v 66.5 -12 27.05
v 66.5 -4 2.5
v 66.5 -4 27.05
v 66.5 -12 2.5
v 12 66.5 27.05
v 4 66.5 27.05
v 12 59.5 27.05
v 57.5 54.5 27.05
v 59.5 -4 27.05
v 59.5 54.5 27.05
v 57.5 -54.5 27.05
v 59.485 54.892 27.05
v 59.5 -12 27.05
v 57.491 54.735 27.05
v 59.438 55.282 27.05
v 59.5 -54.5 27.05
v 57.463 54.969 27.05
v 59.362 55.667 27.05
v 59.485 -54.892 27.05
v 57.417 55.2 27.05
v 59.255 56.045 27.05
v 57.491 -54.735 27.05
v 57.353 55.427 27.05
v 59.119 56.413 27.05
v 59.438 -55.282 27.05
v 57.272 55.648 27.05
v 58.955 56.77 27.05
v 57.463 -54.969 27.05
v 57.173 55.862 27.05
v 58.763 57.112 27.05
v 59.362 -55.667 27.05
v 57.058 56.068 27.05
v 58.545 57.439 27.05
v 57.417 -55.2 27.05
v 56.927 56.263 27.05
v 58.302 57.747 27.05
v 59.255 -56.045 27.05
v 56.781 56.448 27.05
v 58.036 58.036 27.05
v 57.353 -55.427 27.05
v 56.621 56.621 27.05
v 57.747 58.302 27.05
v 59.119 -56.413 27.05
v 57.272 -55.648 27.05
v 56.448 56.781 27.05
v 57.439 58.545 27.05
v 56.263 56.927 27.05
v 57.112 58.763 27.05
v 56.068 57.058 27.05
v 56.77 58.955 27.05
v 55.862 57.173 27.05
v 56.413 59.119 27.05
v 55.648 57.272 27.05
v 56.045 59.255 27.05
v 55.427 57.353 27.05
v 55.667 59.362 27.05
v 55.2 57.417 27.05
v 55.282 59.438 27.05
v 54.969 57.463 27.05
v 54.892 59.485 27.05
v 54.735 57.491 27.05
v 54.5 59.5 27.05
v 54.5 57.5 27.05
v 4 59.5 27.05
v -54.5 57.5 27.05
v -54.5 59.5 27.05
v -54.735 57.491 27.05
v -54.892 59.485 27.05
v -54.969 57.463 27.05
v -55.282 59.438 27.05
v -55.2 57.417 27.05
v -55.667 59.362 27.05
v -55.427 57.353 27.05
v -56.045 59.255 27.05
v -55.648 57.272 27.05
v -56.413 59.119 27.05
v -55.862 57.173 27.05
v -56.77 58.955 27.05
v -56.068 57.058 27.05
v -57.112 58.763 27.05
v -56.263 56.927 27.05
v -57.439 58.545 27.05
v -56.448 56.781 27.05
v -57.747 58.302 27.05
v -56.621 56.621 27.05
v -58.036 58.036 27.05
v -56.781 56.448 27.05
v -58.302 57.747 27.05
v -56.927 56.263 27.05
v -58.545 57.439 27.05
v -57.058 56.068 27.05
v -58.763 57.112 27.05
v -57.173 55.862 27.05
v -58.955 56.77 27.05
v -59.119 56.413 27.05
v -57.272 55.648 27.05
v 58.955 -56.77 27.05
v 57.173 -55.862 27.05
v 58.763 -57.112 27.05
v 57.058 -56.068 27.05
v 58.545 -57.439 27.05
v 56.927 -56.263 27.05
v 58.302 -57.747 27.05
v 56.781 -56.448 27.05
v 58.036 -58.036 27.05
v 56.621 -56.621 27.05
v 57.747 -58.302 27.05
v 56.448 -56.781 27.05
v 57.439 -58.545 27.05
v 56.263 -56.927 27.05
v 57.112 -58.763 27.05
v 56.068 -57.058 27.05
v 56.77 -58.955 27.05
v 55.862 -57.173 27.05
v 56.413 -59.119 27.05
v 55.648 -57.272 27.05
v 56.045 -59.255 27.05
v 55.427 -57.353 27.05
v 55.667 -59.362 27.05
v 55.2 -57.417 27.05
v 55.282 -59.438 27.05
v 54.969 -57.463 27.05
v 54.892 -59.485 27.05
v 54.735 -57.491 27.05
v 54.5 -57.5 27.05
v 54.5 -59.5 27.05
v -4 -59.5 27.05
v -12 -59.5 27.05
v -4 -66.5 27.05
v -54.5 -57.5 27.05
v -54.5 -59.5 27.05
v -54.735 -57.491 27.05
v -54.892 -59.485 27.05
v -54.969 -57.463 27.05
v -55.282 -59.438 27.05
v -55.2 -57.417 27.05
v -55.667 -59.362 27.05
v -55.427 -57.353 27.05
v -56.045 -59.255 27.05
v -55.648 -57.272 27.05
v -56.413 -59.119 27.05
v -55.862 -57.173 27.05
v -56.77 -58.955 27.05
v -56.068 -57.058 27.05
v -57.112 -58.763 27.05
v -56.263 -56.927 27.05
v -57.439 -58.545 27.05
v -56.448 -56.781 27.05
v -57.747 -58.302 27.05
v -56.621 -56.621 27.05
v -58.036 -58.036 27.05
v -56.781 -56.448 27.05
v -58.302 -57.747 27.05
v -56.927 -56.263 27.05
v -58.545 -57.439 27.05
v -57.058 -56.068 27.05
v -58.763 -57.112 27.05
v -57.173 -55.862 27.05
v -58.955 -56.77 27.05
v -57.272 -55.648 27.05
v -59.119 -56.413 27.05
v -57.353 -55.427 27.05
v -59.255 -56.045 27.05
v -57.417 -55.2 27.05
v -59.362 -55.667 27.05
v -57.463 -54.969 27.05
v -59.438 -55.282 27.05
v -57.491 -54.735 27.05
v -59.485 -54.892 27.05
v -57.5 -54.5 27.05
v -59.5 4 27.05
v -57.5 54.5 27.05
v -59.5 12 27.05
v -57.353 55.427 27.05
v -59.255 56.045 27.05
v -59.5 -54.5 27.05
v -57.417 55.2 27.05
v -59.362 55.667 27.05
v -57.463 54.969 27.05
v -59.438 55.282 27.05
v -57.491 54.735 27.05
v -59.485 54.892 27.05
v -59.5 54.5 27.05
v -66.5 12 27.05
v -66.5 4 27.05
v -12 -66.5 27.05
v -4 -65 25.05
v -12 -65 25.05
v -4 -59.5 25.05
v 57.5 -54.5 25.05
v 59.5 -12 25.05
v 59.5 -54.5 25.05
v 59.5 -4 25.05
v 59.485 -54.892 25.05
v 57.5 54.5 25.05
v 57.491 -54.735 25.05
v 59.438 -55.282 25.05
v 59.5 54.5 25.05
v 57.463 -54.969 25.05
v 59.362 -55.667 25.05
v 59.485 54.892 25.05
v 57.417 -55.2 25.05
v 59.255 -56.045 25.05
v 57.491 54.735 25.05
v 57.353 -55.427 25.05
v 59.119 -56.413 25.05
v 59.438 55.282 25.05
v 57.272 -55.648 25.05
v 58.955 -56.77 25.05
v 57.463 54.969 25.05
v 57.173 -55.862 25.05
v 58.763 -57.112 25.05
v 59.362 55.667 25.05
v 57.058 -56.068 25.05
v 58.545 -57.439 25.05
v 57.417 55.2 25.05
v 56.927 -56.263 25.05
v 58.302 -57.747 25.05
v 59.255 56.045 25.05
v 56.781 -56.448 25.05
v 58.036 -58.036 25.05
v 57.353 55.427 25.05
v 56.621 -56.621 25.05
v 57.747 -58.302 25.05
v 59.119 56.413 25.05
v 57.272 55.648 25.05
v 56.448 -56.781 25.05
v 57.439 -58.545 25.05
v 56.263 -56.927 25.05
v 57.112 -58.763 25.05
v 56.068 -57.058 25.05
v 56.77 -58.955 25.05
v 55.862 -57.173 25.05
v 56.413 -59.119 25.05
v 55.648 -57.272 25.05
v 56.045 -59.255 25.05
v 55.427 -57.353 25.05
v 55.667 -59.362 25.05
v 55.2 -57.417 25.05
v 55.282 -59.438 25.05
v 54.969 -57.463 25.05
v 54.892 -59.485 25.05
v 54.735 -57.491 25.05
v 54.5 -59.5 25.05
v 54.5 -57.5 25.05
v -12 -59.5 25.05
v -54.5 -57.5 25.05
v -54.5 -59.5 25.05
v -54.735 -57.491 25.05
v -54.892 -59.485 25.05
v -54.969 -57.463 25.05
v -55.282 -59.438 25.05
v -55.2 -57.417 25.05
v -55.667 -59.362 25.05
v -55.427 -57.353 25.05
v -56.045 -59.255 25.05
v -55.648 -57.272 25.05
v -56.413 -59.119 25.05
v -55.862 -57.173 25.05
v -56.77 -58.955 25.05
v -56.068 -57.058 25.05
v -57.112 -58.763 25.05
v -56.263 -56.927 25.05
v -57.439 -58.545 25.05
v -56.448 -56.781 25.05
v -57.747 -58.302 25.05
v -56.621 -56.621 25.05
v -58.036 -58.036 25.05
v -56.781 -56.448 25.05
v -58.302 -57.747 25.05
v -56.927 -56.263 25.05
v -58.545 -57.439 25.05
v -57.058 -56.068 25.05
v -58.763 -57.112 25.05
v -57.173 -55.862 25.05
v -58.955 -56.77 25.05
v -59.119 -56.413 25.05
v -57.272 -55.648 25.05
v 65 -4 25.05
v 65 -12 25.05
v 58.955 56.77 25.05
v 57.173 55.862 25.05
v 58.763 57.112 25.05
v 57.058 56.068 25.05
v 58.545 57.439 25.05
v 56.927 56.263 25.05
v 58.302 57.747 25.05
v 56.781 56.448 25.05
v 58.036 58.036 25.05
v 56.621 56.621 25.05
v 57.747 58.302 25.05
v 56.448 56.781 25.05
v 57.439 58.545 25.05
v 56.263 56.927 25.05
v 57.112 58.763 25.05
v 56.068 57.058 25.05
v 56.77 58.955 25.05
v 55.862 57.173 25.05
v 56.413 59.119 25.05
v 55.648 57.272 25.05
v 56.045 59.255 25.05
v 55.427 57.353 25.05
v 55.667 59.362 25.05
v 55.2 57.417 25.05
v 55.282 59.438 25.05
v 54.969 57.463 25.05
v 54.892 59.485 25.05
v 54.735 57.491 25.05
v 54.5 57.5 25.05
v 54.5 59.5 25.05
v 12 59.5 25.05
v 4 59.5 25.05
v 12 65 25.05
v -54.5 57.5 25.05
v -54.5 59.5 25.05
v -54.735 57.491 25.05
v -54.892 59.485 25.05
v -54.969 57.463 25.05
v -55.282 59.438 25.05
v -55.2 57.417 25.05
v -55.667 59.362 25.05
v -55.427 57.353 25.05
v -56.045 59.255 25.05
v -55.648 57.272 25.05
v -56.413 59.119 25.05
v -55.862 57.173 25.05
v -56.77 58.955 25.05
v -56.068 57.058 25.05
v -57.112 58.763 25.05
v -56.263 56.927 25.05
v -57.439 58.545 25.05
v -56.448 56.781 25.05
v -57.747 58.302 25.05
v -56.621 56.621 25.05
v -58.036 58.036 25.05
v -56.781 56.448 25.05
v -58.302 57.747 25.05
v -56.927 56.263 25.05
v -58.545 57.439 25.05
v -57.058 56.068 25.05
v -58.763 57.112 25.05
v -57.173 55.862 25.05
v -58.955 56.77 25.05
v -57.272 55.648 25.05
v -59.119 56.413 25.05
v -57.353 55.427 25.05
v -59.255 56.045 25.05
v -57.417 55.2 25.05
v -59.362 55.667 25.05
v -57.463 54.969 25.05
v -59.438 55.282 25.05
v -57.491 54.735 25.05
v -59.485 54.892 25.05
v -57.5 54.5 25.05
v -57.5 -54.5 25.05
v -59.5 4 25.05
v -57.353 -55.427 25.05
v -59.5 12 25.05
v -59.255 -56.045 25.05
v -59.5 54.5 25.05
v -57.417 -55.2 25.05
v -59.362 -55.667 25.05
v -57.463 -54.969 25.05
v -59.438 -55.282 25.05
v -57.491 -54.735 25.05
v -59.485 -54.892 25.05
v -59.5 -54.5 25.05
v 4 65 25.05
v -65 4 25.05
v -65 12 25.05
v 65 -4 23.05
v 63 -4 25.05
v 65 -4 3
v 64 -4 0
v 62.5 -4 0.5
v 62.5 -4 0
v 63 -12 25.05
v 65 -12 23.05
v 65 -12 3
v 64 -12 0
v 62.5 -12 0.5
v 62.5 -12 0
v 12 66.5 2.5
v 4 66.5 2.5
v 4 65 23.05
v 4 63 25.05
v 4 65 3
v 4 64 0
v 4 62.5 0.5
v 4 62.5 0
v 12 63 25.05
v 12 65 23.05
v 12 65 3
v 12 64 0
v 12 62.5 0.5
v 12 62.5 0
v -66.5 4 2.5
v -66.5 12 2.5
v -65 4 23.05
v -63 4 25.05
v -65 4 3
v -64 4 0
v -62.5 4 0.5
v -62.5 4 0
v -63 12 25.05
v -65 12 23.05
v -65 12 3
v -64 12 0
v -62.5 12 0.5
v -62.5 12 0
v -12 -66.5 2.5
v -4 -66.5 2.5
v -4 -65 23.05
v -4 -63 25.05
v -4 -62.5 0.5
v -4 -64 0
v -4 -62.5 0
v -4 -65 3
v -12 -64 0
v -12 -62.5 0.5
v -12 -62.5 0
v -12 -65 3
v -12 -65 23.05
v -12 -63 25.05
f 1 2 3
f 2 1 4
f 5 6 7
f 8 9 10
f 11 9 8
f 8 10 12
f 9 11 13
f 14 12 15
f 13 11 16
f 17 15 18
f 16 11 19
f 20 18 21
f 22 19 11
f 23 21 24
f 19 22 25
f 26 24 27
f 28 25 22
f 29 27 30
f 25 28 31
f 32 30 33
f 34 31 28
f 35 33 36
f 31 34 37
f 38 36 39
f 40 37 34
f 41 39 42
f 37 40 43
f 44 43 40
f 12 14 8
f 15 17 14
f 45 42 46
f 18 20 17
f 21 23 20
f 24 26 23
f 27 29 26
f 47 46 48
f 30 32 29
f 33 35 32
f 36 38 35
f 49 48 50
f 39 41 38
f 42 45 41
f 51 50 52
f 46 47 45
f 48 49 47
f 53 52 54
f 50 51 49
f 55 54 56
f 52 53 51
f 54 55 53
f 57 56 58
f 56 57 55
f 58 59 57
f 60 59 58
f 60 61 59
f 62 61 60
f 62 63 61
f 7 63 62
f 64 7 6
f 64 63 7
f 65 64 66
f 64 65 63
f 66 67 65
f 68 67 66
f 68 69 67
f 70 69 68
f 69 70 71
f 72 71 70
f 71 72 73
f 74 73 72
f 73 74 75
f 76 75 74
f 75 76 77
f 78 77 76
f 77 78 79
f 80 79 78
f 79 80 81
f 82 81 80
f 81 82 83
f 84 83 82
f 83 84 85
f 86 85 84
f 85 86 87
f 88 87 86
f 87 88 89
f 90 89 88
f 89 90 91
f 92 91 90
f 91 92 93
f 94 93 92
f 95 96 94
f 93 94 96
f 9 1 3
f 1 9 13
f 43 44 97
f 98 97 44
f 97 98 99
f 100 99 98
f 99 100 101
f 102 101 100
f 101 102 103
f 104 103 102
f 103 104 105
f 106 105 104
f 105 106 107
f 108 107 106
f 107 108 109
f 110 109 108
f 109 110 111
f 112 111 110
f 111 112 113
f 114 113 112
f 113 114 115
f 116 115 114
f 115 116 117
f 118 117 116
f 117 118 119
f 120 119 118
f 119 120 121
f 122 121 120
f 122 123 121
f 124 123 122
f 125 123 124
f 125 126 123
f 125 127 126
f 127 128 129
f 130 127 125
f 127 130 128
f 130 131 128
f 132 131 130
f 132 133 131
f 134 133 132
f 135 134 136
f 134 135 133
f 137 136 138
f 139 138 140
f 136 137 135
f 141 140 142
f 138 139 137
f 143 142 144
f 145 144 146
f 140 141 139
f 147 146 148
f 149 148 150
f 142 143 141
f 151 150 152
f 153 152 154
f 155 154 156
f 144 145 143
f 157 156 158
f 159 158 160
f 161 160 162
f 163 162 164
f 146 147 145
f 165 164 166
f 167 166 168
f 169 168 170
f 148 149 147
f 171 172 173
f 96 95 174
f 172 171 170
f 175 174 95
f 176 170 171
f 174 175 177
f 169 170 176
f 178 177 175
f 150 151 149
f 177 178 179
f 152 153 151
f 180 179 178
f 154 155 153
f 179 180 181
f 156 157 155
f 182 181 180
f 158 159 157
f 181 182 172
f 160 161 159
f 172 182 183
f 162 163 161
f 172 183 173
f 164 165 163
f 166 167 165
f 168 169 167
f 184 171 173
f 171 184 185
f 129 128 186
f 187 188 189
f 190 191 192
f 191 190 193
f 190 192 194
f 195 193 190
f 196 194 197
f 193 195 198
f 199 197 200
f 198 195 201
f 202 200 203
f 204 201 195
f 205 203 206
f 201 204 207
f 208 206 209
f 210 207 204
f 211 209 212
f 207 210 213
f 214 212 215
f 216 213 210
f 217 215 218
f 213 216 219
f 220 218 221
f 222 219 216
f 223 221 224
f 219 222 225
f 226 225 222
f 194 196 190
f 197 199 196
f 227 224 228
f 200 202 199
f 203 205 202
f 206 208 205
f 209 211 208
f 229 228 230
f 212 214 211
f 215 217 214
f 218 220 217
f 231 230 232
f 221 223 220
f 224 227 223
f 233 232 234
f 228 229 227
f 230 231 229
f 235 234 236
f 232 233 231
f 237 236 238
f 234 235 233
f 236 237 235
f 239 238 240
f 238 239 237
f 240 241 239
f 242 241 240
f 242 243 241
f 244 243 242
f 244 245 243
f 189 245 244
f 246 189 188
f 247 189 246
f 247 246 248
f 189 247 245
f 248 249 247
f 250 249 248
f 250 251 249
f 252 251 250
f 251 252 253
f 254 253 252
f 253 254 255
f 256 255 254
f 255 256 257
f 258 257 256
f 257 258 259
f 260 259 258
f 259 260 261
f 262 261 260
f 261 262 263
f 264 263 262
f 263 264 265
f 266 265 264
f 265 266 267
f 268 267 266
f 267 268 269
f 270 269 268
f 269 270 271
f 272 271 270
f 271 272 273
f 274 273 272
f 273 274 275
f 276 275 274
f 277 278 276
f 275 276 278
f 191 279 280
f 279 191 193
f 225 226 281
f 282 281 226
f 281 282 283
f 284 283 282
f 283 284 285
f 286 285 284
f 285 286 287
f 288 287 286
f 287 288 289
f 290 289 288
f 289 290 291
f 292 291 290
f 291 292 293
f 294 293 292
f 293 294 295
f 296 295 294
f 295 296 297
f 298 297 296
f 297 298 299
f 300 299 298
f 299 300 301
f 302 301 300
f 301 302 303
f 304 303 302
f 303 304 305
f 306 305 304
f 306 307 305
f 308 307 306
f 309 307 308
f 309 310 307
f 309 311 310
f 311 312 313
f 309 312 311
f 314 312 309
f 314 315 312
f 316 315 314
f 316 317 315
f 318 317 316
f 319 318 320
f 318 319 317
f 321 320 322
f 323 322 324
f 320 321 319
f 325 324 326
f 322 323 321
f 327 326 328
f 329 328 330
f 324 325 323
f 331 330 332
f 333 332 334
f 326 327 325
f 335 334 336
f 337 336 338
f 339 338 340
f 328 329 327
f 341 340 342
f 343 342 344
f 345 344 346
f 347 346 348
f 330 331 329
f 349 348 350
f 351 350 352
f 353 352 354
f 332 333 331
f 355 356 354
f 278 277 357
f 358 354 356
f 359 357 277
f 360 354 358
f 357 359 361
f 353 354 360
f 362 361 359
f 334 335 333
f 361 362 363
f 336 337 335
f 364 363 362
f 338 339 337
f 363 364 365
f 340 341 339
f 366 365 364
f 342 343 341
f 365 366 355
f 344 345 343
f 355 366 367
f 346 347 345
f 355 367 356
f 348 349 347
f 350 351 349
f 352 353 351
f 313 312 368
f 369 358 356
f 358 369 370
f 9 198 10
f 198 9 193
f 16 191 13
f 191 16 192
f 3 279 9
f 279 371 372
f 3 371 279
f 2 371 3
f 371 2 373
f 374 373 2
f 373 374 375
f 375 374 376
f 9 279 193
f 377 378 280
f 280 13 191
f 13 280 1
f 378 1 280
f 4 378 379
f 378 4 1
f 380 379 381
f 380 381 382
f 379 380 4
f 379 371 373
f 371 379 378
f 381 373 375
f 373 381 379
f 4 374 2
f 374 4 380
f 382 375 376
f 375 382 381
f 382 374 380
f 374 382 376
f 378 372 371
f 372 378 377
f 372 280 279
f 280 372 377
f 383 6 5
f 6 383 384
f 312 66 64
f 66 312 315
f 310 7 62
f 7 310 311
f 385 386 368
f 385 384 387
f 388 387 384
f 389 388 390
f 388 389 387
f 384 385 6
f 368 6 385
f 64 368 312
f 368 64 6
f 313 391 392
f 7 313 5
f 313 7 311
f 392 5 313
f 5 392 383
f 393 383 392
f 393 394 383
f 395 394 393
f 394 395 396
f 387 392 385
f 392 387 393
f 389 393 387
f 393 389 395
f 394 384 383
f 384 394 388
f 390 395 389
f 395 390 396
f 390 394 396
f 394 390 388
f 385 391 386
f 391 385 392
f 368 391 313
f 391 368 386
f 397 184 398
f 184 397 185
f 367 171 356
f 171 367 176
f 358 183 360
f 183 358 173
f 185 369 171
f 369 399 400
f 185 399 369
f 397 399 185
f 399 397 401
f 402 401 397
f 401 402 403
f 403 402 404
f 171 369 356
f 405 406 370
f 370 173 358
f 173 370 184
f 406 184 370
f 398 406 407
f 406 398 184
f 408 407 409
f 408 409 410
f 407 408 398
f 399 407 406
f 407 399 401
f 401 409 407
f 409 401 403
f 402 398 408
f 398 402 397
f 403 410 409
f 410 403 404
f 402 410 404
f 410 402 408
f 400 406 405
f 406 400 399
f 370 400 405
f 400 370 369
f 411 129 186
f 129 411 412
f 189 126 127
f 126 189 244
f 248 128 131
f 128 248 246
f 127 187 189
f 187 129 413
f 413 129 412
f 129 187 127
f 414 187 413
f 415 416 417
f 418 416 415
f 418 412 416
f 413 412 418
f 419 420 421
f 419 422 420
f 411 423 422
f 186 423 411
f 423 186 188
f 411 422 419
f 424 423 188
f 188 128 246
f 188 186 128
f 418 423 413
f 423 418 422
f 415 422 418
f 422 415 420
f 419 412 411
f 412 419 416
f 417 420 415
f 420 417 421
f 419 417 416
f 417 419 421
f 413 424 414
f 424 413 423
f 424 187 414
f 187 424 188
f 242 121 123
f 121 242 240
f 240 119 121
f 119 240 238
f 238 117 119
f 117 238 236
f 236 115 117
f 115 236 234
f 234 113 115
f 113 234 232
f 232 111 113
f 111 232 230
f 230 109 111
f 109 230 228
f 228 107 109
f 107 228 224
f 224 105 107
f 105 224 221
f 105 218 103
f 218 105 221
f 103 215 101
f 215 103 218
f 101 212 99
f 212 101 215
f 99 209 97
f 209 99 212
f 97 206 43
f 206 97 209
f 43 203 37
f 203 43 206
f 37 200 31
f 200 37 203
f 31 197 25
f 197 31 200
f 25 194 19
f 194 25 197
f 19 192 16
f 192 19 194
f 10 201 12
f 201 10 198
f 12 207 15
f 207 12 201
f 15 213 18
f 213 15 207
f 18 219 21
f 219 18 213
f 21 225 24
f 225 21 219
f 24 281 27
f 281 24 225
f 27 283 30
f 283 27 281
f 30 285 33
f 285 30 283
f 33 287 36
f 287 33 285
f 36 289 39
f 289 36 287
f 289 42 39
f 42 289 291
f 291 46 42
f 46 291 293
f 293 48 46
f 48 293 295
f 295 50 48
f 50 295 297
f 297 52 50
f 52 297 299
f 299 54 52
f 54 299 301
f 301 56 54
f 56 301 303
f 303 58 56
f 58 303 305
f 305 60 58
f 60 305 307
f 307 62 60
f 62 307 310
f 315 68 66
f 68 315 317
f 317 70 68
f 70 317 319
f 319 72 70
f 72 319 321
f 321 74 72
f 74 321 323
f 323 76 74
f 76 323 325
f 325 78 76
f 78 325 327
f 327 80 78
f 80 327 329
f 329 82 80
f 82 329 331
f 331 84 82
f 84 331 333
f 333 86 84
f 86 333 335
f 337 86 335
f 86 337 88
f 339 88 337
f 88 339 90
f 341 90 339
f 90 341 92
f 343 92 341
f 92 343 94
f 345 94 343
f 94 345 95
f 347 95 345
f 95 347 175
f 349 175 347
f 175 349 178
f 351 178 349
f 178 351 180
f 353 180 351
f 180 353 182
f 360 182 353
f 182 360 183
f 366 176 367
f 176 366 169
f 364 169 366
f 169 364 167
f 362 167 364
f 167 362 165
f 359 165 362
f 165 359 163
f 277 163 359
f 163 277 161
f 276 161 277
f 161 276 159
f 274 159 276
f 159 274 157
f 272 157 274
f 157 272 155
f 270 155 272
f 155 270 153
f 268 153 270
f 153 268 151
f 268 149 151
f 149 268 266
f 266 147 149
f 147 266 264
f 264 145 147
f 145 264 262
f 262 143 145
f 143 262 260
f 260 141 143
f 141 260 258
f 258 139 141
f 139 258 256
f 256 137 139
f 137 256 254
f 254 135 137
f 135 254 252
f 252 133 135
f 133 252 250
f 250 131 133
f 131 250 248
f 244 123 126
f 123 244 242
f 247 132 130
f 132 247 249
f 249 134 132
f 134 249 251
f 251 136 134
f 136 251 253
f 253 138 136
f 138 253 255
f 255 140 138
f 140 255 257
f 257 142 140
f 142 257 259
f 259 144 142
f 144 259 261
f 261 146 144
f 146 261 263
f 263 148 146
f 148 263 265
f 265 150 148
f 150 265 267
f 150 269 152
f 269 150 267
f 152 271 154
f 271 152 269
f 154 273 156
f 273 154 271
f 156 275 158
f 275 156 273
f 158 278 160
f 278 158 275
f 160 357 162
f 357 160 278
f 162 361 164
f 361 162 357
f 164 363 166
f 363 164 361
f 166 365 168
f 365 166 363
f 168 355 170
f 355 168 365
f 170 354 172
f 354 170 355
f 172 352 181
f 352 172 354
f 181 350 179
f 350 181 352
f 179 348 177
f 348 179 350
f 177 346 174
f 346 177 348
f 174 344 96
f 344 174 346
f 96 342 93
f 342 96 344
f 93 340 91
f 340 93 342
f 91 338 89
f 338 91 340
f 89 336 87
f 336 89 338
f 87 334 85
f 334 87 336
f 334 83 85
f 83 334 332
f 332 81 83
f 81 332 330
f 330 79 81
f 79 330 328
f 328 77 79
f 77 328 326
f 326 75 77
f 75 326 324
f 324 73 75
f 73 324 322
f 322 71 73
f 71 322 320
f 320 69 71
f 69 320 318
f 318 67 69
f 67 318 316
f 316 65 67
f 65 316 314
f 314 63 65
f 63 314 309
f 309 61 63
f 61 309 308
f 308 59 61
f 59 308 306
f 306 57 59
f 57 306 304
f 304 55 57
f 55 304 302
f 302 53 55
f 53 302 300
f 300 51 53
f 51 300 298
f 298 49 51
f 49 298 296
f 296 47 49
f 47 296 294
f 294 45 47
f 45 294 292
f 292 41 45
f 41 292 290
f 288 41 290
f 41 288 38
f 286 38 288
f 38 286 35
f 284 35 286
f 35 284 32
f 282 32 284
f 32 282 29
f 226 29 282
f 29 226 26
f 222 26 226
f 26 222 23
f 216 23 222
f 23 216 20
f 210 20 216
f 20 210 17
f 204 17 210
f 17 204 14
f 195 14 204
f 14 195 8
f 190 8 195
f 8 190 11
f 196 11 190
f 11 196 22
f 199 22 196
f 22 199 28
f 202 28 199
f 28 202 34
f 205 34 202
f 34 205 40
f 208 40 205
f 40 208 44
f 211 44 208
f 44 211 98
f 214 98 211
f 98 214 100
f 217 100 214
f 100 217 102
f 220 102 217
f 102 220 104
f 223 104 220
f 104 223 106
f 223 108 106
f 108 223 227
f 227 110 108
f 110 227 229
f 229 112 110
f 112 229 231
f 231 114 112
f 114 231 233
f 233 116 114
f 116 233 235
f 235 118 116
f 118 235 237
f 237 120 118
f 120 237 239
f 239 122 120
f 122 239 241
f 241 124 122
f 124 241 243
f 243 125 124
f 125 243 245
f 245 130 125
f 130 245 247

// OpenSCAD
// file: fan-tub-adapter-params.scad
// Fan-Tub Adapter v2.0 — Shared Parameters
// Used by both base plate and retention clip designs.

// === Waffle Grid Measurements ===
square_size   = 63.7;    // mm — waffle square (channel edge to channel edge)
channel_w     = 9.4;     // mm — channel width between adjacent squares
waffle_h      = 4.6;     // mm — waffle square height above channel surface

// === Cutout ===
cutout        = 2 * square_size + channel_w;  // 136.8mm

// === Frame Plate ===
frame_t_inner = 5.0;     // mm — inner zone thickness (fan mount)
frame_t_outer = waffle_h; // mm — outer zone (flange + branches, flush with waffle tops)
corner_r      = 4;       // mm — waffle square corner radius

// === Flange ===
flange_w      = channel_w / 2;  // 4.7mm

// === Fan Geometry ===
fan_frame     = 119;     // mm — fan outer dimension (square)
fan_frame_t   = 24.7;    // mm — fan frame thickness (measured)
fan_opening   = 115;     // mm — center airflow diameter (matches fan inner circle)
fan_corner_r  = 5;       // mm — fan frame corner radius

// === Locating Rim ===
loc_rim_h     = 4.0;     // mm — height of rim above inner plate (was 1.5 in v1)
loc_rim_wall  = 2;       // mm — rim wall thickness
loc_clearance = 0.5;     // mm — clearance around fan frame (per side)

// === Y-Branch Geometry ===
branch_w      = 9.0;     // mm — branch width (9.4 channel - 0.4 clearance)
branch_len    = 25;      // mm — engagement length into channel from root

// === Clip Mechanism ===
// Ledge on rim exterior: chamfered underside for printability.
//   Bottom zone: 45° chamfer ramps from 0 to full depth over clip_ledge_depth height.
//   Top zone:    flat engagement face, clip_ledge_flat mm tall — hook catches here.
//   Total ledge height = clip_ledge_depth (chamfer) + clip_ledge_flat (flat).
clip_ledge_depth   = 3.0;  // mm — outward protrusion; also sets chamfer height (45°)
clip_ledge_flat    = 2.0;  // mm — flat engagement zone at ledge top (hook catches here)
clip_ledge_h       = clip_ledge_depth + clip_ledge_flat;  // 5.0mm total ledge height
clip_arm_w         = 8.0;  // mm — arm width
clip_arm_t         = 1.5;  // mm — arm thickness
clip_arm_len       = 22.05; // mm — arm length (preload-adjusted)
clip_hook_overhang = 2.5;  // mm — hook inward protrusion (snap deflection + engagement)
clip_hook_h        = 3.0;  // mm — hook height
clip_frame_t       = 2.0;  // mm — clip frame thickness
clip_tab_w         = 3.5;  // mm — outward bridge from frame edge to arm

// === Derived Values ===
frame_outer   = cutout + 2 * flange_w;        // 146.2mm
branch_root   = cutout / 2 + channel_w / 2;   // 73.1mm

loc_inner     = fan_frame + 2 * loc_clearance; // 120mm
loc_outer     = loc_inner + 2 * loc_rim_wall;  // 124mm

// Vertical stackup (Z from base plate bottom)
z_inner_top   = frame_t_inner;                 // 5.0
z_rim_top     = frame_t_inner + loc_rim_h;     // 9.0
z_ledge_bot   = z_rim_top - clip_ledge_h;      // 7.5 (ledge bottom, 1.5mm from rim top)
z_fan_top     = frame_t_inner + fan_frame_t;   // 29.7
z_clip_top    = z_fan_top + clip_frame_t;      // 31.7

// Bounding boxes
base_bbox_x   = 2 * (branch_root + branch_len); // 196.2
base_bbox_y   = base_bbox_x;
base_bbox_z   = z_rim_top;                       // 9.0
// file: bambu-x1c.scad
// Bambu Lab X1 Carbon — build volume and dimension reporting

BED_X = 256;
BED_Y = 256;
BED_Z = 256;

// Assert a part fits within the build volume.
// Call with the bounding box dimensions of your part.
module assert_fits(x, y, z) {
  assert(x <= BED_X, str("Part X (", x, "mm) exceeds bed X (", BED_X, "mm)"));
  assert(y <= BED_Y, str("Part Y (", y, "mm) exceeds bed Y (", BED_Y, "mm)"));
  assert(z <= BED_Z, str("Part Z (", z, "mm) exceeds bed Z (", BED_Z, "mm)"));
}

// Echo dimensions in a parseable format for the Node.js pipeline.
// Call at the end of your .scad file with the part's bounding box.
module report_dimensions(x, y, z, label="part") {
  assert_fits(x, y, z);
  echo(str("DIMENSION:", label, ":x=", x));
  echo(str("DIMENSION:", label, ":y=", y));
  echo(str("DIMENSION:", label, ":z=", z));
}
// file: fdm-pla.scad
// FDM PLA Tolerance Constants
// Use these in all designs to ensure proper fit on the Bambu X1C.

// Fit offsets (applied to radius or per-side dimension)
FDM_PRESS_FIT     = -0.15;  // Friction-held joints
FDM_CLEARANCE_FIT =  0.25;  // Easy insert/remove
FDM_SLIDING_FIT   =  0.35;  // Moving parts

// Hole compensation (applied to diameter)
FDM_HOLE_COMPENSATION = 0.4;

// Structural minimums
MIN_WALL = 1.2;       // 3 perimeters at 0.4mm nozzle
MIN_FLOOR_CEIL = 0.8; // 4 layers at 0.2mm

// Overhang and bridging limits
MAX_OVERHANG_ANGLE = 45;  // degrees from vertical
MAX_BRIDGE_SPAN    = 10;  // mm unsupported horizontal span

// Layer and nozzle
NOZZLE_DIA   = 0.4;
LAYER_HEIGHT = 0.2;
// main file
// Fan-Tub Adapter v2.0 — Retention Clip (CLAUDE SHAME EDITION)
//
// This part exists because Claude shipped a sign error in the base plate's
// clip_ledges() module: rotate([90,0,0]) flips the extrusion into −Y, so the
// centering translate needed to be +clip_arm_w/2, not −clip_arm_w/2. Result:
// ledges offset 8mm from center, overlapping arms by a single edge only.
//
// Rather than reprint the base, this clip matches the *wrong* ledge positions
// from the pre-fix base plate. The arms are shifted −clip_arm_w (−8mm) in
// local Y to align with where the ledges actually were.
//
// Fixed base plate: designs/fan-tub-adapter-base/fan-tub-adapter-base.scad
// Fixed clip:       designs/fan-tub-adapter-clip/fan-tub-adapter-clip.scad
// Shame commit:     b33a000
//
// Do not use with the corrected base. This is a monument to the bug.

include <fdm-pla.scad>
include <bambu-x1c.scad>
include <fan-tub-adapter-params.scad>

$fn = 80;

// === Clip geometry ===

clip_frame_outer = fan_frame;
clip_frame_inner = fan_opening;
clip_frame_r     = fan_corner_r;

arm_center_offset = loc_outer / 2 + clip_ledge_depth + clip_arm_t / 2;

tab_len = arm_center_offset + clip_arm_t / 2 - clip_frame_outer / 2;

local_arm_bot   = clip_hook_h;
local_arm_top   = clip_hook_h + clip_arm_len;
local_frame_bot = local_arm_top;
local_frame_top = local_arm_top + clip_frame_t;
total_clip_h    = local_frame_top;

hook_chamfer = min(clip_hook_overhang, clip_hook_h);

fillet_r = 2.0;

clip_bbox_xy = loc_outer + 2 * clip_ledge_depth + 2 * clip_arm_t;

// Shame offset: how far the old buggy ledges were from center in local arm Y.
// rotate([90,0,0]) flips extrude to −Y; translate was −clip_arm_w/2 instead of
// +clip_arm_w/2, netting a −clip_arm_w shift relative to correct position.
shame_offset = -clip_arm_w;  // −8mm

report_dimensions(clip_bbox_xy, clip_bbox_xy, total_clip_h, "clip");


// === Modules ===

module rounded_square_2d(size, r) {
    offset(r=r) offset(r=-r) square(size, center=true);
}

module clip_frame() {
    translate([0, 0, local_frame_bot])
        linear_extrude(clip_frame_t)
            difference() {
                rounded_square_2d(clip_frame_outer, clip_frame_r);
                rounded_square_2d(clip_frame_inner, clip_frame_r - 2);
            }
}

module clip_arm(side) {
    angle = side * 90;

    x_arm_inner  = arm_center_offset - clip_arm_t / 2;
    x_arm_outer  = arm_center_offset + clip_arm_t / 2;
    x_hook_inner = x_arm_inner - clip_hook_overhang;

    rotate([0, 0, angle]) {
        // Shame offset: shifts arm in local −Y to match old buggy ledge positions
        translate([0, shame_offset, 0]) {

            translate([clip_frame_outer/2, -clip_arm_w/2, local_frame_bot])
                cube([tab_len, clip_arm_w, clip_frame_t]);

            translate([x_arm_inner, -clip_arm_w/2, local_arm_bot])
                cube([clip_arm_t, clip_arm_w, local_arm_top - local_arm_bot]);

            rotate([90, 0, 0])
                linear_extrude(clip_arm_w, center=true)
                    polygon([
                        [x_hook_inner,               0                        ],
                        [x_arm_outer - hook_chamfer,  0                        ],
                        [x_arm_outer,                hook_chamfer             ],
                        [x_arm_outer,                clip_hook_h              ],
                        [x_arm_inner,                clip_hook_h              ],
                        [x_hook_inner,               clip_hook_h - hook_chamfer],
                    ]);

            rotate([90, 0, 0])
                linear_extrude(clip_arm_w, center=true)
                    polygon([
                        [x_arm_inner,          local_frame_bot        ],
                        [x_arm_inner - fillet_r, local_frame_bot      ],
                        [x_arm_inner,          local_frame_bot - fillet_r],
                    ]);
        }
    }
}


// === Assembly ===

union() {
    clip_frame();
    for (side = [0:3]) clip_arm(side);
}
